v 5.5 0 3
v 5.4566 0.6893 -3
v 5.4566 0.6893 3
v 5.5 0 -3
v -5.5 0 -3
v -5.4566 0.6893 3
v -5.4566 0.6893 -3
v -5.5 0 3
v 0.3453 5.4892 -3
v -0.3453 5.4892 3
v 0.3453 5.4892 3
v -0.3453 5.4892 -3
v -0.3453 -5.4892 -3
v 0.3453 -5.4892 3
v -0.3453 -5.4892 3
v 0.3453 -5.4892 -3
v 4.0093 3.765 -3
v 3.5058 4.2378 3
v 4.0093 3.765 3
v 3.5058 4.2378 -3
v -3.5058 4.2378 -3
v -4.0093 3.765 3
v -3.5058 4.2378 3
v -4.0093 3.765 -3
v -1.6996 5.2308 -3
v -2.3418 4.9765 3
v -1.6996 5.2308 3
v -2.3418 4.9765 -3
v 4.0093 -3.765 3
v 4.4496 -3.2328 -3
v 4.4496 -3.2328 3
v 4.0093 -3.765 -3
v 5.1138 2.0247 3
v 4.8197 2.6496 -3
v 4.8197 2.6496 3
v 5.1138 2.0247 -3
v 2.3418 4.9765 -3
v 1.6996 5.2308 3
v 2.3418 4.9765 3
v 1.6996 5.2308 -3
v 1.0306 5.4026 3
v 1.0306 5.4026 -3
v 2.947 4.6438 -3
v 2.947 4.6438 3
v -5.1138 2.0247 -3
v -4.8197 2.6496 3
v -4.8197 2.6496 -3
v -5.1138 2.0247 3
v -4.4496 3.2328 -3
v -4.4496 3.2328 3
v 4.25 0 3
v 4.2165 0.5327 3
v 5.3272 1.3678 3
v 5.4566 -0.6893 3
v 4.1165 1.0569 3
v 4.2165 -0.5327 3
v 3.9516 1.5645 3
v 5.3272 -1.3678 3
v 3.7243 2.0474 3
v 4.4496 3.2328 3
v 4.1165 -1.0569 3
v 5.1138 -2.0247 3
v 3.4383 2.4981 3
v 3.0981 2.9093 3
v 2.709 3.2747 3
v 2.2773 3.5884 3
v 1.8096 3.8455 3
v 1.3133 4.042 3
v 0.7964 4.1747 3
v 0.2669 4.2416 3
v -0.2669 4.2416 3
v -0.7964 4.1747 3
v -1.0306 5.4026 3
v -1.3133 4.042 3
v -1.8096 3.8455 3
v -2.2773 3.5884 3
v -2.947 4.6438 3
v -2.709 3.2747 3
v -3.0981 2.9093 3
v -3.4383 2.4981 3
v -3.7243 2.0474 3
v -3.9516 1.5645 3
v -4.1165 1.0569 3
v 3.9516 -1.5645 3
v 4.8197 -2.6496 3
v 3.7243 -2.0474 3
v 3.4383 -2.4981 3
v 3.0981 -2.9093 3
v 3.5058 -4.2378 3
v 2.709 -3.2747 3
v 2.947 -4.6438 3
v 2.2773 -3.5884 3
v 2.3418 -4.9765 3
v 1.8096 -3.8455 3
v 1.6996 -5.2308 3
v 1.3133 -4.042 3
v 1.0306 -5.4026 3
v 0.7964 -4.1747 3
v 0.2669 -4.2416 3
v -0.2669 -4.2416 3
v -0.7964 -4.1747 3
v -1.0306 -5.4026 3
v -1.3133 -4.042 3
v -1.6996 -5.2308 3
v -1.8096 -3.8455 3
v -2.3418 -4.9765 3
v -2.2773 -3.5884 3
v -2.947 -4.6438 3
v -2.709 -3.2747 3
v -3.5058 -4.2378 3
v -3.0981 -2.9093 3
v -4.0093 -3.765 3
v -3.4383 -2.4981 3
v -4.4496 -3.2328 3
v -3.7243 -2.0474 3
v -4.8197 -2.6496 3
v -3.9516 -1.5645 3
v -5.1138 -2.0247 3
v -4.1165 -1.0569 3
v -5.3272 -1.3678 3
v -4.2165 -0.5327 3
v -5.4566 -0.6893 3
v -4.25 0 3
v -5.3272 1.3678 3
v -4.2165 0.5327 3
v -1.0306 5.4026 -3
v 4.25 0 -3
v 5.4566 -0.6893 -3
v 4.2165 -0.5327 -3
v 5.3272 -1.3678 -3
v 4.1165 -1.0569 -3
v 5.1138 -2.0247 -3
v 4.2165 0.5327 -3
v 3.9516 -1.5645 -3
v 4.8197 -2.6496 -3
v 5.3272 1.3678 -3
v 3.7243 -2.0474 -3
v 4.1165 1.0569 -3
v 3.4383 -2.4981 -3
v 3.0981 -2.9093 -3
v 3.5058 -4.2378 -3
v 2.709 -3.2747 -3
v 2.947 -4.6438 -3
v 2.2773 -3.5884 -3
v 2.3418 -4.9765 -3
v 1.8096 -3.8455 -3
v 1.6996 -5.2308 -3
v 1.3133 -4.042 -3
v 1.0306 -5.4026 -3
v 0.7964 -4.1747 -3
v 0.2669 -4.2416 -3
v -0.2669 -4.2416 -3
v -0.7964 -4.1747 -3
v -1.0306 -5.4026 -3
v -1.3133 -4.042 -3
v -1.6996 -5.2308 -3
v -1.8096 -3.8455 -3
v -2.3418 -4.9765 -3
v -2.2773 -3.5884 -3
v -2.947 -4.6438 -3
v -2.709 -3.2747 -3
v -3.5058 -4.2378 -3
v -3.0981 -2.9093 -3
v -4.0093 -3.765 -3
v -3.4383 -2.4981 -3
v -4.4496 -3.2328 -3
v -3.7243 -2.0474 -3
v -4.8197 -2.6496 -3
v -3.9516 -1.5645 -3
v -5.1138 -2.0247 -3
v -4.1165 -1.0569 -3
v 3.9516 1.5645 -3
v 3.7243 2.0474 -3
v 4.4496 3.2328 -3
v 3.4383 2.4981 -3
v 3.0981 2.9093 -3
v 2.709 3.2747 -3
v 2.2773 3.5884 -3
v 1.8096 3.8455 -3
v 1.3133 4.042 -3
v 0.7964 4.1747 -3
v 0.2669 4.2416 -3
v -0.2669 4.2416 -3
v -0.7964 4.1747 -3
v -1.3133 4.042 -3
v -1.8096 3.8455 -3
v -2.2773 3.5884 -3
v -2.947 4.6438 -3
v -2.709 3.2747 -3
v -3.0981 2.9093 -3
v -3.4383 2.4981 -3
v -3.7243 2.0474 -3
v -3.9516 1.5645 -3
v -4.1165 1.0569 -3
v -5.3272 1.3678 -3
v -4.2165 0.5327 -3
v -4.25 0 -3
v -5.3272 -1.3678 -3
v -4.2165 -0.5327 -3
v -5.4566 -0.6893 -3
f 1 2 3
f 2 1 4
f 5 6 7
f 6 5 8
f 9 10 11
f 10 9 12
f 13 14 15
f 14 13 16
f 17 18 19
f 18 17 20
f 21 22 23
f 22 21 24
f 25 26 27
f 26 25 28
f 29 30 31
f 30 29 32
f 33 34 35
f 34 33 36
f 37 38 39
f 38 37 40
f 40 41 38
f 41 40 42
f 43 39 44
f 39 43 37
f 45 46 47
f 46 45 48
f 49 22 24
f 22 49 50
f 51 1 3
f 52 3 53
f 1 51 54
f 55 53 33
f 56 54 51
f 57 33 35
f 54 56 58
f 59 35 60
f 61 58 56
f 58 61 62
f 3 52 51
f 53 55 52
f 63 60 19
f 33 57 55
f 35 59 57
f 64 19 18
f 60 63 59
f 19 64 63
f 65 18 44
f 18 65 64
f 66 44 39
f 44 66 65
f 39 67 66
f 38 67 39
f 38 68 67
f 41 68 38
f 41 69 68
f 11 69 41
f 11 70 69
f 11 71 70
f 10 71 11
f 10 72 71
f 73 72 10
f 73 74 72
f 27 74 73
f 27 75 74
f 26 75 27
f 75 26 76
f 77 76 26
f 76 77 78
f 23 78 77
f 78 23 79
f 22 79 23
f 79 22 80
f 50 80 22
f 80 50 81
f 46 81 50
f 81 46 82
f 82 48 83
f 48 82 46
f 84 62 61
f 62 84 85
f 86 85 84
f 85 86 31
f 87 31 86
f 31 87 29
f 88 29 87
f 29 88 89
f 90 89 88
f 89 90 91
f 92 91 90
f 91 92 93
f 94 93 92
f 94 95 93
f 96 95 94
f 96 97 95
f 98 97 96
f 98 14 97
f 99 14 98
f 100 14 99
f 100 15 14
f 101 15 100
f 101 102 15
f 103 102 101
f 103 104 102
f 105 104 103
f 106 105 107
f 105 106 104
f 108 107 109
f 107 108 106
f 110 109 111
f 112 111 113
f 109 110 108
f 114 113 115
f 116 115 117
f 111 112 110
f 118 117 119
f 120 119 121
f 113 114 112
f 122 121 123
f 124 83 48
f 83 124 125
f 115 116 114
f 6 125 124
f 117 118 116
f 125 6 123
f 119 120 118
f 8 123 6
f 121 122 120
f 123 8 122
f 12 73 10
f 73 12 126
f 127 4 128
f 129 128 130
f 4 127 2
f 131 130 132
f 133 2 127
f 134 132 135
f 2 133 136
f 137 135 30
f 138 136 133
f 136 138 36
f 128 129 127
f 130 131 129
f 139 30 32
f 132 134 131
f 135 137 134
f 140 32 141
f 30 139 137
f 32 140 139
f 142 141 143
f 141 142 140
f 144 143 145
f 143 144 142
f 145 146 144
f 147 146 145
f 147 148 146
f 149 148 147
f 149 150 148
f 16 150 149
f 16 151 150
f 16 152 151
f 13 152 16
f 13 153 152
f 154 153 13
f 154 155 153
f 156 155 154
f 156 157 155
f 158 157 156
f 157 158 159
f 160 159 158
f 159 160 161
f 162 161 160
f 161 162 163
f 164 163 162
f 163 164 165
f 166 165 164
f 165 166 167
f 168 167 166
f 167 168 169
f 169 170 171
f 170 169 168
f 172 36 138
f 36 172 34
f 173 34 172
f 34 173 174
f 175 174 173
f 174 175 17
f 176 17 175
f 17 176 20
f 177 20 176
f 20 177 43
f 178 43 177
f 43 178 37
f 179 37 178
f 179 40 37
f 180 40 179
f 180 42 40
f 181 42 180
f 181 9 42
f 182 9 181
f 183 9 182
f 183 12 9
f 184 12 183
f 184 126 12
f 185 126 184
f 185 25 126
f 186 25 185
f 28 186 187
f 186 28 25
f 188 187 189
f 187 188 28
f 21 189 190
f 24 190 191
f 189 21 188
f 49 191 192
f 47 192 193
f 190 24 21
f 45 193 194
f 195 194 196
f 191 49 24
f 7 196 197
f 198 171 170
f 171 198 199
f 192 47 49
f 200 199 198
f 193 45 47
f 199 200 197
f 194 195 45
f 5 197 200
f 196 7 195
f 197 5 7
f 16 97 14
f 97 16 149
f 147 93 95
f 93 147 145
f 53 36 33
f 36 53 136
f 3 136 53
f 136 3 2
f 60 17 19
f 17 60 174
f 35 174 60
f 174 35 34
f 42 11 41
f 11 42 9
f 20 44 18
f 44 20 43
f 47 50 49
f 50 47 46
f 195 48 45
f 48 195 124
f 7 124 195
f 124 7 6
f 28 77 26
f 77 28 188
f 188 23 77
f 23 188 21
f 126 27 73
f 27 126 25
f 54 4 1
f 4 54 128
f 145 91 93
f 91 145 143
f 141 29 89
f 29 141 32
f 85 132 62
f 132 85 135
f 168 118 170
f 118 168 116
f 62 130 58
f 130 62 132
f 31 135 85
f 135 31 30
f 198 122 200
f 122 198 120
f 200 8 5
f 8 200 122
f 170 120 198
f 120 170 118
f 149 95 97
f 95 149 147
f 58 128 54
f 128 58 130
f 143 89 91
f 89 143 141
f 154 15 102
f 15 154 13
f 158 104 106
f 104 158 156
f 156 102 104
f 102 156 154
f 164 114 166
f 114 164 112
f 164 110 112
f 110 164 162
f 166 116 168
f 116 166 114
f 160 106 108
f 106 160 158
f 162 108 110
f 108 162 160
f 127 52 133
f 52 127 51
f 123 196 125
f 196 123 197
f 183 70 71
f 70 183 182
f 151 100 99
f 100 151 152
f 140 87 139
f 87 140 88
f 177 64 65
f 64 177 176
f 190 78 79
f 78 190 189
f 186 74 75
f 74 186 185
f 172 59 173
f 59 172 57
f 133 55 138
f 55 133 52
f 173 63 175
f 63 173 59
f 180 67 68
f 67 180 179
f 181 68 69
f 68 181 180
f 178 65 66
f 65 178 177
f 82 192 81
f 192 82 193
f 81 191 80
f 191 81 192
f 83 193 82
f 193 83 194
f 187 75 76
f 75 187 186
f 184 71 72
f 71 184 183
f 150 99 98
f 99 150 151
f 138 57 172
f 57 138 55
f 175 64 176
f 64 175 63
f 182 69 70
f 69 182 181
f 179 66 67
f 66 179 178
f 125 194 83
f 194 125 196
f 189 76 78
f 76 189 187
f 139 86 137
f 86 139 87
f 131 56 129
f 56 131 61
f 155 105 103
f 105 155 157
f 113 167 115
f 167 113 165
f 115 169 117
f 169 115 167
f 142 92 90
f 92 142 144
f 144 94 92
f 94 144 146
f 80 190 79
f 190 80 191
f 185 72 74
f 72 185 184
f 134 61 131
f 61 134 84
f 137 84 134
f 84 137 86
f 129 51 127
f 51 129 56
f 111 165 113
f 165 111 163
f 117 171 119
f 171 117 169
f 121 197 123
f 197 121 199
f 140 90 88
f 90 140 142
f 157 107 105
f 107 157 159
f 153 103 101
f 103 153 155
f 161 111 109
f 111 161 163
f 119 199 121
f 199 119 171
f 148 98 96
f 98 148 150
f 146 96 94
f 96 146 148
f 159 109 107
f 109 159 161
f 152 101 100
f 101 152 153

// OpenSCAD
$fn = 50;


difference() {
	union() {
		translate(v = [0, 0, -3.0000000000]) {
			cylinder(h = 6, r = 5.5000000000);
		}
	}
	union() {
		translate(v = [0, 0, -100.0000000000]) {
			cylinder(h = 200, r = 4.2500000000);
		}
	}
}
